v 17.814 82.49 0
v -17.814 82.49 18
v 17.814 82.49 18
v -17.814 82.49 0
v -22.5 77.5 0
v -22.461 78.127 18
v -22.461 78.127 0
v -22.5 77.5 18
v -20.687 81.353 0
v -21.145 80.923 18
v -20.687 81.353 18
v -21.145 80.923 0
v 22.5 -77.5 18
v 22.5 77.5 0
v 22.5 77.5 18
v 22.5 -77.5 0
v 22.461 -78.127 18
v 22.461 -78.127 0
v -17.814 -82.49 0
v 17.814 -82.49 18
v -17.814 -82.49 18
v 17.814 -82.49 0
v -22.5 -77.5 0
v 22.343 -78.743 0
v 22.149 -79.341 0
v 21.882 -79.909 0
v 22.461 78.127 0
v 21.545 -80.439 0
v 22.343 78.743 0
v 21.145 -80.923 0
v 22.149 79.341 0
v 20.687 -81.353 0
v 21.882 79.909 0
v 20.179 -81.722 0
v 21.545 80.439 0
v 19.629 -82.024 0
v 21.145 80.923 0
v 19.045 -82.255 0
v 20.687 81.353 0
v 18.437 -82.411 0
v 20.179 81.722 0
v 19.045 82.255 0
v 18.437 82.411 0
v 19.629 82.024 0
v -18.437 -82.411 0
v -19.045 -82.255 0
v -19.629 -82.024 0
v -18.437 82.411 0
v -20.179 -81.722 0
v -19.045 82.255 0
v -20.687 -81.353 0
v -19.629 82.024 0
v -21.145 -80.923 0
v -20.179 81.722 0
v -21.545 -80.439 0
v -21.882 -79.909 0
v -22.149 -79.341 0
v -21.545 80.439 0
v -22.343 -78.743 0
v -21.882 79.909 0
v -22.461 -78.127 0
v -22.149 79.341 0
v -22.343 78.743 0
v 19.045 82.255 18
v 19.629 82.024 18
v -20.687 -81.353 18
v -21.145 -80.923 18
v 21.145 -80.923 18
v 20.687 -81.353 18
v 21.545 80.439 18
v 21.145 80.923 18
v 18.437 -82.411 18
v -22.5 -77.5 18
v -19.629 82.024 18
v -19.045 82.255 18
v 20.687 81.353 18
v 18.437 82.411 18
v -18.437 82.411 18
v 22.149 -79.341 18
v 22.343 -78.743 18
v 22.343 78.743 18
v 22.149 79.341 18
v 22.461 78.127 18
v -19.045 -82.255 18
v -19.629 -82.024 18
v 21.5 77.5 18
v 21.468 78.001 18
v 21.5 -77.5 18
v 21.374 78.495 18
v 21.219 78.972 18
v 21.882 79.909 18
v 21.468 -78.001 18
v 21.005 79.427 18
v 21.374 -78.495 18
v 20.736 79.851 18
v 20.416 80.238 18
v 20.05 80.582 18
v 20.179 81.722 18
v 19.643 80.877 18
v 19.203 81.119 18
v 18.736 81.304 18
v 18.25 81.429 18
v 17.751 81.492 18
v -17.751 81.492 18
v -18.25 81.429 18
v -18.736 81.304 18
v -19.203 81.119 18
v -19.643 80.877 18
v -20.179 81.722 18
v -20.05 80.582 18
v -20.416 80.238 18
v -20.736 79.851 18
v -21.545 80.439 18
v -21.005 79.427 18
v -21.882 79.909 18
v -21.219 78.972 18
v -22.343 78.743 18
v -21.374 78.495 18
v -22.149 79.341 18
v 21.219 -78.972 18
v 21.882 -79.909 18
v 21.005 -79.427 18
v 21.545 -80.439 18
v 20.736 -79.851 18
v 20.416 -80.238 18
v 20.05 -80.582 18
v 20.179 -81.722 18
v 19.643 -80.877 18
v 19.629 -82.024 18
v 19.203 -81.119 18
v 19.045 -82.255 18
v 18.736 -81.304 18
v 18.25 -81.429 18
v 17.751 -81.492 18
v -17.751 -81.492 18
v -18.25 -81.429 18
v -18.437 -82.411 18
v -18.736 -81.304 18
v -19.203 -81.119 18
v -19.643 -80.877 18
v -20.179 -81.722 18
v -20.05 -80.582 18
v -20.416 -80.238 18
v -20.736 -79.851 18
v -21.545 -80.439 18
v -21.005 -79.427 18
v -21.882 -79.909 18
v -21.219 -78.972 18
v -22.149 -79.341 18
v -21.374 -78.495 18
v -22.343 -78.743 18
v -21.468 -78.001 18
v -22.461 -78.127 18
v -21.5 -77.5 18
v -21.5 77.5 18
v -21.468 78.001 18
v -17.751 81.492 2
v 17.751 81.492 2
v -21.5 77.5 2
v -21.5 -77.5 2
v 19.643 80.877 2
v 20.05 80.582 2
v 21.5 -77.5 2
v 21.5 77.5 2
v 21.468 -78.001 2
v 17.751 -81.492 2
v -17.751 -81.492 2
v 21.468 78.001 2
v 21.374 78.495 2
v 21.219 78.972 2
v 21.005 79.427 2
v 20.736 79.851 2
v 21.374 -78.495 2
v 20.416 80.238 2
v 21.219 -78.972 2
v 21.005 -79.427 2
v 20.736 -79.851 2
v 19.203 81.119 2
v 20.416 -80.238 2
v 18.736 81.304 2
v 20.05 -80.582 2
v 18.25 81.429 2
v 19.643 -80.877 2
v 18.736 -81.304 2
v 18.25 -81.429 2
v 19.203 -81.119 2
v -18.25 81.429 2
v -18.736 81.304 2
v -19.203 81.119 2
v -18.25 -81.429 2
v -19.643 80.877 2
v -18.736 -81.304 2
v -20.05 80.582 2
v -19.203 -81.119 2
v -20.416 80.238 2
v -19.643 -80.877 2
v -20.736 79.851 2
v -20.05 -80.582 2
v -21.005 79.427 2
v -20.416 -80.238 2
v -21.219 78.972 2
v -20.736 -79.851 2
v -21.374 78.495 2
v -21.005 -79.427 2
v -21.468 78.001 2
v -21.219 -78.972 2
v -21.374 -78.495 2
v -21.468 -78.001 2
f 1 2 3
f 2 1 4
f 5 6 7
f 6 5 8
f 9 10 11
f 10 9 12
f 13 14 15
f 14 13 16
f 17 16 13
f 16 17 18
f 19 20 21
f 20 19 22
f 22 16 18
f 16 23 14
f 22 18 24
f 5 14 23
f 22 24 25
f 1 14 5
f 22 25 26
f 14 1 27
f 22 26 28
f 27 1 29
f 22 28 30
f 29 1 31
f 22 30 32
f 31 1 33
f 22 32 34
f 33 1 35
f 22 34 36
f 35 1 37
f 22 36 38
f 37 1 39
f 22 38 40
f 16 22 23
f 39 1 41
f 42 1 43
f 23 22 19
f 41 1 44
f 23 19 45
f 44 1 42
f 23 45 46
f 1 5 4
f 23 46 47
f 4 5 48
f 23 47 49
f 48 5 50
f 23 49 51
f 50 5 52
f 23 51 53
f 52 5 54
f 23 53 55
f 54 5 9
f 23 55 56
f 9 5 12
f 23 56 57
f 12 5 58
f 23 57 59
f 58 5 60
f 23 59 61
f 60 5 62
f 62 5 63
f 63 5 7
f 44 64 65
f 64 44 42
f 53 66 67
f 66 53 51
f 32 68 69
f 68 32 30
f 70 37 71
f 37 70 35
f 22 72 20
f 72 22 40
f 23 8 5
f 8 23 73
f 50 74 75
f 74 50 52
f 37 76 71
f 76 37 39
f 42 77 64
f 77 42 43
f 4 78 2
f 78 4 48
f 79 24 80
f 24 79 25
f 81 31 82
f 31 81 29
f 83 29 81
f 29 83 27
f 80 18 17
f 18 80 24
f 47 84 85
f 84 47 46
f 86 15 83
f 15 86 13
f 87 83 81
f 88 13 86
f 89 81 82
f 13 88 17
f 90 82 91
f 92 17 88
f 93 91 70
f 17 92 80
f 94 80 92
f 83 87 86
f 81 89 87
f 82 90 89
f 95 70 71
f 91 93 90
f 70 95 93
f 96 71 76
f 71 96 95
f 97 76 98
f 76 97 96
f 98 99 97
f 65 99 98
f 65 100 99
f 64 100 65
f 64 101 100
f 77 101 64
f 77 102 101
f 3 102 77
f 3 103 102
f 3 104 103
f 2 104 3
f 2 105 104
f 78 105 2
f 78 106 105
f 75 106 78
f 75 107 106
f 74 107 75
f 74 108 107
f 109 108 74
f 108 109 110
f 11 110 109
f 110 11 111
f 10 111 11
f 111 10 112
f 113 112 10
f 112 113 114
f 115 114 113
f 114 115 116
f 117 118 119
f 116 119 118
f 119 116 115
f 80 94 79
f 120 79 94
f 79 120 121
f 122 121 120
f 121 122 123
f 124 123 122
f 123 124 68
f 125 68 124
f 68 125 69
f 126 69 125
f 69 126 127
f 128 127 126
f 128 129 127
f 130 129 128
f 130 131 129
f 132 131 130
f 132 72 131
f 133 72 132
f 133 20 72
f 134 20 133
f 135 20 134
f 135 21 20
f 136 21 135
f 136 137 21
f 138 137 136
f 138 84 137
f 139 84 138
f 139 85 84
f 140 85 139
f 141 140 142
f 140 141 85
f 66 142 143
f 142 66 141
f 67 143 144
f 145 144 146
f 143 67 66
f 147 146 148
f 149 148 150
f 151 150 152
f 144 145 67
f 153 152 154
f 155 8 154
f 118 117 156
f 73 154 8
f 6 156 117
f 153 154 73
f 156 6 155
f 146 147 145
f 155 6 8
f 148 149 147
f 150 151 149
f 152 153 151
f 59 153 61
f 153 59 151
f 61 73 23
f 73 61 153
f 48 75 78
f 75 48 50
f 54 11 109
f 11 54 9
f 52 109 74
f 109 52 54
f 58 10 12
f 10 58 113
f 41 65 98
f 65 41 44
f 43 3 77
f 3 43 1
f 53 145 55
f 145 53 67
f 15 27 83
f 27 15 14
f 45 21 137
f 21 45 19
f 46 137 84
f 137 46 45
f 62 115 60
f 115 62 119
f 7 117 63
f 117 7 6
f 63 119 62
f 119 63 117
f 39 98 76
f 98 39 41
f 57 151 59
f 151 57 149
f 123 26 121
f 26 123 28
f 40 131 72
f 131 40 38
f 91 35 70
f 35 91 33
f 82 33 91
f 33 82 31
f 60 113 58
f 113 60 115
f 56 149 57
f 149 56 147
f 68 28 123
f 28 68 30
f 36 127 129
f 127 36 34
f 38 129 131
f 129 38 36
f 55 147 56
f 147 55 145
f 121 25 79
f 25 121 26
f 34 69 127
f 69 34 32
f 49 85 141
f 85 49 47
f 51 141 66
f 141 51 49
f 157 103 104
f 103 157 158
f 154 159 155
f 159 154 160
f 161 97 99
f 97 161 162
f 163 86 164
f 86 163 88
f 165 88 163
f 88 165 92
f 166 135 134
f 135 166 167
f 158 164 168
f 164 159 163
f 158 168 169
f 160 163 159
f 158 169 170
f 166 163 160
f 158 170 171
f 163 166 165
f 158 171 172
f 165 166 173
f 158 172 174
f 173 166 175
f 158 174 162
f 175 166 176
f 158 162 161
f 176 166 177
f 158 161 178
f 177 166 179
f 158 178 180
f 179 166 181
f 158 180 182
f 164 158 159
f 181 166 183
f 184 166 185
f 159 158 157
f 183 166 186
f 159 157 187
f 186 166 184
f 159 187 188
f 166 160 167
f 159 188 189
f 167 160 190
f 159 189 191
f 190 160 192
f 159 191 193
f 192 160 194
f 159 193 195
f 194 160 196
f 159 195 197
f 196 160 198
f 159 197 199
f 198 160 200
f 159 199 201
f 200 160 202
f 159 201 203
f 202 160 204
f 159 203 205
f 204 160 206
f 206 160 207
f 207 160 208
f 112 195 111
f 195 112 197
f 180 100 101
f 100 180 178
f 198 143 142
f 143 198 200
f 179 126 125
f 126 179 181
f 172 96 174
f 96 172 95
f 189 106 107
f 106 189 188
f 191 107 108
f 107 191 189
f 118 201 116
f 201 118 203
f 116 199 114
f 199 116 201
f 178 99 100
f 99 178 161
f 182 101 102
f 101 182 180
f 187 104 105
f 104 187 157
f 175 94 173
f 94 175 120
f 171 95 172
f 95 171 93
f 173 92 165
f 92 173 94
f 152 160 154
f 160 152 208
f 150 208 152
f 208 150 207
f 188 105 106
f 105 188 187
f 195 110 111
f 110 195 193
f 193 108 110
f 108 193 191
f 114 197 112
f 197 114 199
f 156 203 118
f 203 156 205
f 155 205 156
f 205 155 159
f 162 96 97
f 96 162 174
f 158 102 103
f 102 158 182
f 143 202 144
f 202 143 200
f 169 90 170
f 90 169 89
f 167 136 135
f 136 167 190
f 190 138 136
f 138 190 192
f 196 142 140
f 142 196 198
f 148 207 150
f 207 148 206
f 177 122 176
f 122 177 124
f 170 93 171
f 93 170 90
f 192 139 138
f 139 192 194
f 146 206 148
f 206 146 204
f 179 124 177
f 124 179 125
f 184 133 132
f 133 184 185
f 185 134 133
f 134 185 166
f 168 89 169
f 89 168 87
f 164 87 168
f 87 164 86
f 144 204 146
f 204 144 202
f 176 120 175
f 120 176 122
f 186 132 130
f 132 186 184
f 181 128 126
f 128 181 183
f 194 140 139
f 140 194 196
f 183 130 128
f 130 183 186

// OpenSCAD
$fn = 50;


difference() {
	union() {
		hull() {
			translate(v = [-17.5000000000, 77.5000000000, 0]) {
				cylinder(h = 18, r = 5);
			}
			translate(v = [17.5000000000, 77.5000000000, 0]) {
				cylinder(h = 18, r = 5);
			}
			translate(v = [-17.5000000000, -77.5000000000, 0]) {
				cylinder(h = 18, r = 5);
			}
			translate(v = [17.5000000000, -77.5000000000, 0]) {
				cylinder(h = 18, r = 5);
			}
		}
	}
	union() {
		translate(v = [0, 0, 2]) {
			hull() {
				translate(v = [-17.5000000000, 77.5000000000, 0]) {
					cylinder(h = 16, r = 4);
				}
				translate(v = [17.5000000000, 77.5000000000, 0]) {
					cylinder(h = 16, r = 4);
				}
				translate(v = [-17.5000000000, -77.5000000000, 0]) {
					cylinder(h = 16, r = 4);
				}
				translate(v = [17.5000000000, -77.5000000000, 0]) {
					cylinder(h = 16, r = 4);
				}
			}
		}
	}
}
